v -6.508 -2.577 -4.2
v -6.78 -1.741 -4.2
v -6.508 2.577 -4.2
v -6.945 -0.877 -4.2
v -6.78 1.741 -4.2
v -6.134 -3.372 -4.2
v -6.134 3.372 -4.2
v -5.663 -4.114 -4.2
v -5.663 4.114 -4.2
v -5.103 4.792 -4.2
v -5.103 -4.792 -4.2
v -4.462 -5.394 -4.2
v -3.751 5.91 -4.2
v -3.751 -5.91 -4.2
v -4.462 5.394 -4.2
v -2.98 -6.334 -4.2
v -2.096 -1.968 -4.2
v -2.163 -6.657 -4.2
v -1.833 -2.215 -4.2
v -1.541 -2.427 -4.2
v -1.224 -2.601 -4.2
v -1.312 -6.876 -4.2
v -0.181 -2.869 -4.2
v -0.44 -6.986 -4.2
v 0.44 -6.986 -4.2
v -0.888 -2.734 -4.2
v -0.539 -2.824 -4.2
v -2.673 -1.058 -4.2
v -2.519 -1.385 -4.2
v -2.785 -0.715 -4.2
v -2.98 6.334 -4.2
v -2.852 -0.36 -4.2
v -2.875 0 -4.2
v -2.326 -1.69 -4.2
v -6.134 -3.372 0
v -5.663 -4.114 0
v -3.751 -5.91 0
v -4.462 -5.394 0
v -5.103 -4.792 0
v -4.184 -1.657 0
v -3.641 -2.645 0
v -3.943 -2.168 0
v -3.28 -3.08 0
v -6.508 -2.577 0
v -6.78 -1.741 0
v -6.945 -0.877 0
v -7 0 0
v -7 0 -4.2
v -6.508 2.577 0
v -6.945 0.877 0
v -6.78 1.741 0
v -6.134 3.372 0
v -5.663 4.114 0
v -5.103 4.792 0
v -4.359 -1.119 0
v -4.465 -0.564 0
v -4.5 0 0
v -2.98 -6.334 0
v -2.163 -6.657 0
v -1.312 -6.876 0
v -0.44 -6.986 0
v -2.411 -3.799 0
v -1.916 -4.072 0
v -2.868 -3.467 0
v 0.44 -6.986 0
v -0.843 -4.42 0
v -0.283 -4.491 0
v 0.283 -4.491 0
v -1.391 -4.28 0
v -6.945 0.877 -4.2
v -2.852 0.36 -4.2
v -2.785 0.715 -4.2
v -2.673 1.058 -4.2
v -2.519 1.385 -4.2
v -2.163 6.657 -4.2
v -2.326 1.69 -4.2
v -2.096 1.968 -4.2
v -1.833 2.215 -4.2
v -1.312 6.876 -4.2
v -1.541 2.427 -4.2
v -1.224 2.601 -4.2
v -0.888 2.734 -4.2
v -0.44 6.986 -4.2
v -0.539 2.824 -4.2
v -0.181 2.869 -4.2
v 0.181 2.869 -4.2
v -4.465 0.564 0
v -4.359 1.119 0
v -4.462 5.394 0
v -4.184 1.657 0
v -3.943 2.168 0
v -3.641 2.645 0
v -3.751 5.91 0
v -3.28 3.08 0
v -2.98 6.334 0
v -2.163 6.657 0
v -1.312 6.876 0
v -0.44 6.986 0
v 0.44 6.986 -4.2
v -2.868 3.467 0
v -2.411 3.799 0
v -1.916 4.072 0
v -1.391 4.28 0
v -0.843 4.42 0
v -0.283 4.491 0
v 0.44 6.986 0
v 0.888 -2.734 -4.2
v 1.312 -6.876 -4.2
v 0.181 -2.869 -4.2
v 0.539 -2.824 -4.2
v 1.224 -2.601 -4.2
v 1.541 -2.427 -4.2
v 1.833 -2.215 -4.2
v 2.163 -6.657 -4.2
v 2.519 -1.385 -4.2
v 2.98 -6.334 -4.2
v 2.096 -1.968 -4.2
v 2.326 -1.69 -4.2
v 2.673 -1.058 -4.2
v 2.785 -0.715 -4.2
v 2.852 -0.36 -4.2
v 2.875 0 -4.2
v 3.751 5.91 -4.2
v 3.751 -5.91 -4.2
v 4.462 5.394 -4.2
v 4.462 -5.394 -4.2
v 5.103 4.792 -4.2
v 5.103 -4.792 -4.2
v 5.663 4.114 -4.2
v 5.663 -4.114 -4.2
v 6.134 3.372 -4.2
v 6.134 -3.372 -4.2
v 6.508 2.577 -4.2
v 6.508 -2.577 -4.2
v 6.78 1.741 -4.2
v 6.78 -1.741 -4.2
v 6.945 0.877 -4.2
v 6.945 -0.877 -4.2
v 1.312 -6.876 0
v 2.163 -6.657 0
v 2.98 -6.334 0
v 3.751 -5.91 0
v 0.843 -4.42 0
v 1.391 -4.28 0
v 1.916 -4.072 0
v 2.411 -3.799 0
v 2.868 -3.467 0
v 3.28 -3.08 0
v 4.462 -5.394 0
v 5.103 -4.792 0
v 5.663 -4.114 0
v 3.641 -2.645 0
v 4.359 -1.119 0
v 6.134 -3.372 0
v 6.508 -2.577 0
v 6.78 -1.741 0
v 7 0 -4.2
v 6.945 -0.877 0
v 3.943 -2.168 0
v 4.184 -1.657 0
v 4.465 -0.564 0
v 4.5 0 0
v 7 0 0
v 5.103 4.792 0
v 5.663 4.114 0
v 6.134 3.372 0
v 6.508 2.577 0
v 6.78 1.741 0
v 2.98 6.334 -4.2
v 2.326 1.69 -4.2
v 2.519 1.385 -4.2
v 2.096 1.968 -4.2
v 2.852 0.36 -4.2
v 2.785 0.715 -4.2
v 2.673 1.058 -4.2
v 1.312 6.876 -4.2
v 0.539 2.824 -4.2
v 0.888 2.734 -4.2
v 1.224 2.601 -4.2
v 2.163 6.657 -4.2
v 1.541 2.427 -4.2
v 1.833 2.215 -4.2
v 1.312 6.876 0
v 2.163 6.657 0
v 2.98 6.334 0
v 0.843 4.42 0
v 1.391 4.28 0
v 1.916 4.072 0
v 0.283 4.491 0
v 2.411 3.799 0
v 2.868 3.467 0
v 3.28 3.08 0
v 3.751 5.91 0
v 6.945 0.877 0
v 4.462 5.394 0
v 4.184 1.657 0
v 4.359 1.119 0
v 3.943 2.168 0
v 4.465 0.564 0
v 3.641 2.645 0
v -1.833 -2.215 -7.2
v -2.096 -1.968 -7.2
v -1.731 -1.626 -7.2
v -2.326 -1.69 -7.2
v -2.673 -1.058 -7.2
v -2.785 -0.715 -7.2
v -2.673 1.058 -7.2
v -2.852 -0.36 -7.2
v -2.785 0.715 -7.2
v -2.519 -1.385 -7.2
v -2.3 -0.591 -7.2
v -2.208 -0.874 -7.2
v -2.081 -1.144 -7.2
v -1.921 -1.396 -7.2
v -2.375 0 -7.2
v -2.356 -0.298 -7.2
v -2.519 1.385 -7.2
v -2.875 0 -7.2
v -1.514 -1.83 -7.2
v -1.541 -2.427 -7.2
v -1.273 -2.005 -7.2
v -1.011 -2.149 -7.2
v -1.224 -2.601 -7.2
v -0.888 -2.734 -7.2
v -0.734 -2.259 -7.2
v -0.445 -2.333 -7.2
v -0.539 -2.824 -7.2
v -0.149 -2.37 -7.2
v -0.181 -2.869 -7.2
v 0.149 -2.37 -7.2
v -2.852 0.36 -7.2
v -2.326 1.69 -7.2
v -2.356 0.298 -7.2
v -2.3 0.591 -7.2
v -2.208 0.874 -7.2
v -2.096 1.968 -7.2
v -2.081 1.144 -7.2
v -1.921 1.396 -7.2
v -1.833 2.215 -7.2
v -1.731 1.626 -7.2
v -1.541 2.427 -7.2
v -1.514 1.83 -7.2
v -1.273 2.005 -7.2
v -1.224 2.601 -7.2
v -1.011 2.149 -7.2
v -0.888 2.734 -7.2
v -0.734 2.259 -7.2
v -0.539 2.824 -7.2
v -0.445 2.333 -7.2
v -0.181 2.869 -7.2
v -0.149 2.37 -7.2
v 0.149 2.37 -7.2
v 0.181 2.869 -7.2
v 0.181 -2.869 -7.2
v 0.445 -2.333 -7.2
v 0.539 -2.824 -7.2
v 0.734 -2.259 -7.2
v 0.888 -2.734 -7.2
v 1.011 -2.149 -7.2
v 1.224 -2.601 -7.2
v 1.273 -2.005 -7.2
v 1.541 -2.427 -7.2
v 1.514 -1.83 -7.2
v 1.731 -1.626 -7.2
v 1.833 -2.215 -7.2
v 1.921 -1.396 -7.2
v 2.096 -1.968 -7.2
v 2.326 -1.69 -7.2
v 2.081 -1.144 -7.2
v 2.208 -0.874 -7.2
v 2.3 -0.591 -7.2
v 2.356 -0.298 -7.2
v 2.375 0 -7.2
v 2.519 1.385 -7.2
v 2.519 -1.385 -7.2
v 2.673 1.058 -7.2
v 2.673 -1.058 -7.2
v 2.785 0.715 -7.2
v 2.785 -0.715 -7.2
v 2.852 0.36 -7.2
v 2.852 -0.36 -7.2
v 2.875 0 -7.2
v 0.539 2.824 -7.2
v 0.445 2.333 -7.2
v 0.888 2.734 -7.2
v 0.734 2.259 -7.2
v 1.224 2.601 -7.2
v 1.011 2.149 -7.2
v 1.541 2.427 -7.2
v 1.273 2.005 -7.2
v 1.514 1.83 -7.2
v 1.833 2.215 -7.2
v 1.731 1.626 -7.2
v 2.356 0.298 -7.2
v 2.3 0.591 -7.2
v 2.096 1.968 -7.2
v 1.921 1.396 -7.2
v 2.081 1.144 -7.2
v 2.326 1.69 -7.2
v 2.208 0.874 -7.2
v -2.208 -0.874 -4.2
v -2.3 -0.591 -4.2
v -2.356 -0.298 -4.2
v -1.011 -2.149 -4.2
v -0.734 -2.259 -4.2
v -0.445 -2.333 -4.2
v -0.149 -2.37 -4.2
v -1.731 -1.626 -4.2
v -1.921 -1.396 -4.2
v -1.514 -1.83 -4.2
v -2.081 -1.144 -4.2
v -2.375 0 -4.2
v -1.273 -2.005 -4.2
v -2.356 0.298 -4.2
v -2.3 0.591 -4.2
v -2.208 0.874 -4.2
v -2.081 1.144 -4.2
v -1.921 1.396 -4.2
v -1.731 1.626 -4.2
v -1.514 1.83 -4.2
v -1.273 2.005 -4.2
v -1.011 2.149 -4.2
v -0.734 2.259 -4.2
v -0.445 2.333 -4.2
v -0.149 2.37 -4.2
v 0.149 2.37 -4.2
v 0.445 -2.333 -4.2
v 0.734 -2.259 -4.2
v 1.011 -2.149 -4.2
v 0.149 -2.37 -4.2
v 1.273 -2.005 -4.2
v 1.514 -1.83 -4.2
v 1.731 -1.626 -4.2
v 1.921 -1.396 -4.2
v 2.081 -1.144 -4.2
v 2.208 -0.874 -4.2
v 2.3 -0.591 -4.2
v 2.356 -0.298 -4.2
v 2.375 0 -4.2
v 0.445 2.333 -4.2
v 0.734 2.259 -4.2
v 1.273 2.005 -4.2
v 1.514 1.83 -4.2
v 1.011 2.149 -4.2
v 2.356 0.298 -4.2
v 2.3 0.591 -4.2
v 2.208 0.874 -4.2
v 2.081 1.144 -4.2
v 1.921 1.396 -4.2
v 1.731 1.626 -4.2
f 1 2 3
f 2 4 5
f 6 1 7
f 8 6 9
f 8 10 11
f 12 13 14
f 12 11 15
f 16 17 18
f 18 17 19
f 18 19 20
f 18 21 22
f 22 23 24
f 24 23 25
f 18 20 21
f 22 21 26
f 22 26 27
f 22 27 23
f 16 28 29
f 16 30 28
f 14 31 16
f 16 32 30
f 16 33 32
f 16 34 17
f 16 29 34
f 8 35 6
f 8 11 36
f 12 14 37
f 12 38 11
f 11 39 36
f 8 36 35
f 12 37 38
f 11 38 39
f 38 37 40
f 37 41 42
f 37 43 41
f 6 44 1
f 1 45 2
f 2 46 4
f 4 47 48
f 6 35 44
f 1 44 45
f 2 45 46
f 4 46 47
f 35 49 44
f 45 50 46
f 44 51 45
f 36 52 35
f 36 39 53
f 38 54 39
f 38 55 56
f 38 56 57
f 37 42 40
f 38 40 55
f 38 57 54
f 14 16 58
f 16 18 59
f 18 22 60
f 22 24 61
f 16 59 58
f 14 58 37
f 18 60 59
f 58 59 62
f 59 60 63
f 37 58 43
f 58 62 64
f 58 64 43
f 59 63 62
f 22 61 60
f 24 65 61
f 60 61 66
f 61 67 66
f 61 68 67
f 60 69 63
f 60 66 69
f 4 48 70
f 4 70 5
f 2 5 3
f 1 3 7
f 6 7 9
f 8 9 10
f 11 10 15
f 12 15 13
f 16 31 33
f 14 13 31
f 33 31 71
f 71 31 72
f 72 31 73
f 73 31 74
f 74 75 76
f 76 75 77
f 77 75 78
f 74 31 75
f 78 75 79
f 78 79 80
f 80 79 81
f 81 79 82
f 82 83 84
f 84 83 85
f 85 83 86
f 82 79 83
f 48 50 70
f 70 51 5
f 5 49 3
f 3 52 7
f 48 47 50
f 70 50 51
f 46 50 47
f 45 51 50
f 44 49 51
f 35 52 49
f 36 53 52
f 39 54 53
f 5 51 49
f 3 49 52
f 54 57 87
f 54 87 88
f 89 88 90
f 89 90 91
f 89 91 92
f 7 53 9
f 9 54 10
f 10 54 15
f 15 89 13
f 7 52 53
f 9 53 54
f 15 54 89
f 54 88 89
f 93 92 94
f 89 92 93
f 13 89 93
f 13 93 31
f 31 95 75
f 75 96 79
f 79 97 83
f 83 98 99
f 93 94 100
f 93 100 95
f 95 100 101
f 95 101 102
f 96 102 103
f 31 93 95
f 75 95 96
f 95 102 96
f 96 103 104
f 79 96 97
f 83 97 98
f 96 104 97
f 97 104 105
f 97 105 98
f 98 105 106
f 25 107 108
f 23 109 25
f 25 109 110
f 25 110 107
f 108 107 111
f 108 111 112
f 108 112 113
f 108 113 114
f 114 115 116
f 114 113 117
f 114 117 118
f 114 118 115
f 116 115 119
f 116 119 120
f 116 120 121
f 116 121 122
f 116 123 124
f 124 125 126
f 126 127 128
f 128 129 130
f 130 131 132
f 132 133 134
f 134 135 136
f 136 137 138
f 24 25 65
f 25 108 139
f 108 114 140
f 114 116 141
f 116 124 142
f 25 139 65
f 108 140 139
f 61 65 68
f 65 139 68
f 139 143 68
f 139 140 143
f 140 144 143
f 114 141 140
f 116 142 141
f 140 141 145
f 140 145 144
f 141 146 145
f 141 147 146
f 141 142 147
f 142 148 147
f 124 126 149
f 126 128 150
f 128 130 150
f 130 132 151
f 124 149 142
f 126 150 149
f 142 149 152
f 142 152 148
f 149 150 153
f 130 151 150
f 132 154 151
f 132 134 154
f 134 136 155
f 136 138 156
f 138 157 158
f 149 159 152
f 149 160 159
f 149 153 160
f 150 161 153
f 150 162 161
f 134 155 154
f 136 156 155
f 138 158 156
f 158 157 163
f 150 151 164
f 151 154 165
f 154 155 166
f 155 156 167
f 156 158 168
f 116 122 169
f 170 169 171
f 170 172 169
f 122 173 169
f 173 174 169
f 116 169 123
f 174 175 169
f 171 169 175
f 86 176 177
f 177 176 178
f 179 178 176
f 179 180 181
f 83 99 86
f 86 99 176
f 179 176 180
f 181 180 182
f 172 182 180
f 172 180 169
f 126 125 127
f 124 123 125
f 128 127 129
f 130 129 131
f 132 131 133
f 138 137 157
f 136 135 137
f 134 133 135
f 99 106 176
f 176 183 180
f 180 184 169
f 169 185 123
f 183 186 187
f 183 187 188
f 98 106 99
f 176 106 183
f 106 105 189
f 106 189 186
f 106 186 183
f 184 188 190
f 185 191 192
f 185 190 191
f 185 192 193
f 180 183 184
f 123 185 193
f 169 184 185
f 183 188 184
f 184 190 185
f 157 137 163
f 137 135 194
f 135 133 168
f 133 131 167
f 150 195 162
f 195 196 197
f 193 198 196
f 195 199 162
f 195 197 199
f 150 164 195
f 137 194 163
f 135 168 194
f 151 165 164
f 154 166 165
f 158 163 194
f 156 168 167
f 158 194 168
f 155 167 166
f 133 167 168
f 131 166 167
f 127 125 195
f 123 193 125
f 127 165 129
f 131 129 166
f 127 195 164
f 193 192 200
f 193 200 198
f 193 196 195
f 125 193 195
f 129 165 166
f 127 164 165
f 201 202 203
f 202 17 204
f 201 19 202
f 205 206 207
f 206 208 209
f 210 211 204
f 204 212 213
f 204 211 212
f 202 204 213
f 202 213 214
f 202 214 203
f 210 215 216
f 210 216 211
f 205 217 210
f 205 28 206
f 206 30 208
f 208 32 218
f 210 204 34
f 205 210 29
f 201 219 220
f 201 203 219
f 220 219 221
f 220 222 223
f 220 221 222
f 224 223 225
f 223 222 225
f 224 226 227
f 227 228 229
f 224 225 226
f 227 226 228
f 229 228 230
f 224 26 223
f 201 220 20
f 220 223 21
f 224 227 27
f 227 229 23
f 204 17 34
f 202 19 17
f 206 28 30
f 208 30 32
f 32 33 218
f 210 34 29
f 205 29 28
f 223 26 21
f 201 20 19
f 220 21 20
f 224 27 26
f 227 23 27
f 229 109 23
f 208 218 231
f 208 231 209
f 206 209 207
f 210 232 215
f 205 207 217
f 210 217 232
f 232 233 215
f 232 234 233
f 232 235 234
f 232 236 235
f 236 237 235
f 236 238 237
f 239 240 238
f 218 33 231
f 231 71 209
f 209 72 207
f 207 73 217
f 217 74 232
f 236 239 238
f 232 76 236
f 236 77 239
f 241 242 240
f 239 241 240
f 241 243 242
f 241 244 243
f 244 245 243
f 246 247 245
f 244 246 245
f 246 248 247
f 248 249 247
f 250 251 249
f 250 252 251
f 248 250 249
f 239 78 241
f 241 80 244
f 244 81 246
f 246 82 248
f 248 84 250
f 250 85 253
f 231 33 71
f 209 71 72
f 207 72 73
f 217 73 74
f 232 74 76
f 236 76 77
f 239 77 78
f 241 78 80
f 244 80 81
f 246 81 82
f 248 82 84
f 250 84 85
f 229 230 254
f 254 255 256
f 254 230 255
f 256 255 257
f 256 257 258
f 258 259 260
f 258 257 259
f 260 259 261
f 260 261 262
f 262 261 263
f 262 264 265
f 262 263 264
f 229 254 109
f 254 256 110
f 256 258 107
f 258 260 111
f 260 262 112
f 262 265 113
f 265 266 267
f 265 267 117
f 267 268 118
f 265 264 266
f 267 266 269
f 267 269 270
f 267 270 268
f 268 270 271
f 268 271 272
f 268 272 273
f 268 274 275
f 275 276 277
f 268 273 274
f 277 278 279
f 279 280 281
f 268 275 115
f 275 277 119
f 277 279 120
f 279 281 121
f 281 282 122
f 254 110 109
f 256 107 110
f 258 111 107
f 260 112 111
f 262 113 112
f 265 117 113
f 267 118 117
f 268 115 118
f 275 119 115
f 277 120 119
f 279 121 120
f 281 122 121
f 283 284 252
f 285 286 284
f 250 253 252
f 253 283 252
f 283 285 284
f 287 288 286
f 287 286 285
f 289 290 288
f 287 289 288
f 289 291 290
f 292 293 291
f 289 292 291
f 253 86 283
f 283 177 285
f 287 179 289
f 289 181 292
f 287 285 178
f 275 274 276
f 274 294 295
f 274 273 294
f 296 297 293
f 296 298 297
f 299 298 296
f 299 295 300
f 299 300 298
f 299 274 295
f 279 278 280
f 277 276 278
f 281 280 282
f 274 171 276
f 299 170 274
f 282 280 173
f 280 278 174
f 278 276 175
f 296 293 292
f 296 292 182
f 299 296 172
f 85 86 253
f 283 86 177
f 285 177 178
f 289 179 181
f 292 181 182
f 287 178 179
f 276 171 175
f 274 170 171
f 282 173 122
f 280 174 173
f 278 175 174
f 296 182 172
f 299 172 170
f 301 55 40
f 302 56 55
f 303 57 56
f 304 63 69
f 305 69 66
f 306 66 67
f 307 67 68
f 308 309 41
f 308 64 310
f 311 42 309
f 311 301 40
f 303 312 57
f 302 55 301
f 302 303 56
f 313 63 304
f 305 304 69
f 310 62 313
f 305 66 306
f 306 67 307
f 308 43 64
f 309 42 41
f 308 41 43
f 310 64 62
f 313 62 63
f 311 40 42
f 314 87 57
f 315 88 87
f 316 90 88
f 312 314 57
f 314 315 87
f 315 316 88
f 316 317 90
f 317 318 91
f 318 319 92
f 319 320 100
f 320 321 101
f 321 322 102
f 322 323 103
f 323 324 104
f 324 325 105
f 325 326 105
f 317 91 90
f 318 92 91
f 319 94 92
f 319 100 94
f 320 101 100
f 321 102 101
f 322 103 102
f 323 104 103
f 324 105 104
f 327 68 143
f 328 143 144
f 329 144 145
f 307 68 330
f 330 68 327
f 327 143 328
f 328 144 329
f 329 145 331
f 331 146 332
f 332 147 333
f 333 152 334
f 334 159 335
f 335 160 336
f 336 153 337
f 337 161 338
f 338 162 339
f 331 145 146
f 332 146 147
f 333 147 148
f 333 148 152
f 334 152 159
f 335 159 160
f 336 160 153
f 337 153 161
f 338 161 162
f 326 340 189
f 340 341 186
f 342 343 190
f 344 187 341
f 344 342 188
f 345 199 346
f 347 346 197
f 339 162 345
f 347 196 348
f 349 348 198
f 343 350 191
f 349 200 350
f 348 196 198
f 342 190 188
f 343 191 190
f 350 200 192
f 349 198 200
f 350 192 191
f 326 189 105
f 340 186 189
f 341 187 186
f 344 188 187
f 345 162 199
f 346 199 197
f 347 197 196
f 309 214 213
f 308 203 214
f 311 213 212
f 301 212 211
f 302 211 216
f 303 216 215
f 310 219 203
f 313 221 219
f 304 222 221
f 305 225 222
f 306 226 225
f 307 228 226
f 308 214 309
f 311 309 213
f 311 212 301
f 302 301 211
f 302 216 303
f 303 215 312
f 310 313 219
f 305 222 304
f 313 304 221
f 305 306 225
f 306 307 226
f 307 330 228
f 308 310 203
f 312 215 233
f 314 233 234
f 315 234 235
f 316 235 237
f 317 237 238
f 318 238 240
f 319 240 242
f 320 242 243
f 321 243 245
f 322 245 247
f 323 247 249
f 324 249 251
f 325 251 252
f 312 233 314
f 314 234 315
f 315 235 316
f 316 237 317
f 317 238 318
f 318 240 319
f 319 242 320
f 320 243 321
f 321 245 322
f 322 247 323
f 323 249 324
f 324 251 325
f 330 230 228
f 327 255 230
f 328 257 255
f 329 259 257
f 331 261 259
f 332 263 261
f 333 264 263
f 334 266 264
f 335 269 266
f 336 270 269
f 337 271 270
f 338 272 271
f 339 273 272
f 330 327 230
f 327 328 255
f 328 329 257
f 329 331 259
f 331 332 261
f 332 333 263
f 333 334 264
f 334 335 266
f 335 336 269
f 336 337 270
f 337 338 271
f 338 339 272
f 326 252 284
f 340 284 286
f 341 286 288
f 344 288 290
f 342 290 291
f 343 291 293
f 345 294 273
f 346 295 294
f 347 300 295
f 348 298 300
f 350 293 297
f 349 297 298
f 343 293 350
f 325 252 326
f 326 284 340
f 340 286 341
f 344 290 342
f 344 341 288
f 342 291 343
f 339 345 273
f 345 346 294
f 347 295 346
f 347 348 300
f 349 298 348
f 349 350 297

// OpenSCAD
$fn = 50;

difference() {
	union() {
		translate(v = [0, 0, -4.2]) {
			cylinder(h = 4.2, r = 7.0);
		}
		#translate(v = [0, 0, -7.2]) {
			cylinder(h = 7.2, r = 2.875);
		}
	}
	union() {
		translate(v = [0, 0, 0]) {
			rotate(a = [0, 0, 0]) {
				difference() {
					union() {
						translate(v = [0, 0, -7.2]) {
							cylinder(h = 7.2, r = 2.25);
						}
						translate(v = [0, 0, -4.2]) {
							cylinder(h = 4.2, r1 = 2.375, r2 = 4.5);
						}
						translate(v = [0, 0, -7.2]) {
							cylinder(h = 7.2, r = 2.375);
						}
						translate(v = [0, 0, -7.2]) {
							cylinder(h = 7.2, r = 2.25);
						}
					}
					union();
				}
			}
		}
	}
}
